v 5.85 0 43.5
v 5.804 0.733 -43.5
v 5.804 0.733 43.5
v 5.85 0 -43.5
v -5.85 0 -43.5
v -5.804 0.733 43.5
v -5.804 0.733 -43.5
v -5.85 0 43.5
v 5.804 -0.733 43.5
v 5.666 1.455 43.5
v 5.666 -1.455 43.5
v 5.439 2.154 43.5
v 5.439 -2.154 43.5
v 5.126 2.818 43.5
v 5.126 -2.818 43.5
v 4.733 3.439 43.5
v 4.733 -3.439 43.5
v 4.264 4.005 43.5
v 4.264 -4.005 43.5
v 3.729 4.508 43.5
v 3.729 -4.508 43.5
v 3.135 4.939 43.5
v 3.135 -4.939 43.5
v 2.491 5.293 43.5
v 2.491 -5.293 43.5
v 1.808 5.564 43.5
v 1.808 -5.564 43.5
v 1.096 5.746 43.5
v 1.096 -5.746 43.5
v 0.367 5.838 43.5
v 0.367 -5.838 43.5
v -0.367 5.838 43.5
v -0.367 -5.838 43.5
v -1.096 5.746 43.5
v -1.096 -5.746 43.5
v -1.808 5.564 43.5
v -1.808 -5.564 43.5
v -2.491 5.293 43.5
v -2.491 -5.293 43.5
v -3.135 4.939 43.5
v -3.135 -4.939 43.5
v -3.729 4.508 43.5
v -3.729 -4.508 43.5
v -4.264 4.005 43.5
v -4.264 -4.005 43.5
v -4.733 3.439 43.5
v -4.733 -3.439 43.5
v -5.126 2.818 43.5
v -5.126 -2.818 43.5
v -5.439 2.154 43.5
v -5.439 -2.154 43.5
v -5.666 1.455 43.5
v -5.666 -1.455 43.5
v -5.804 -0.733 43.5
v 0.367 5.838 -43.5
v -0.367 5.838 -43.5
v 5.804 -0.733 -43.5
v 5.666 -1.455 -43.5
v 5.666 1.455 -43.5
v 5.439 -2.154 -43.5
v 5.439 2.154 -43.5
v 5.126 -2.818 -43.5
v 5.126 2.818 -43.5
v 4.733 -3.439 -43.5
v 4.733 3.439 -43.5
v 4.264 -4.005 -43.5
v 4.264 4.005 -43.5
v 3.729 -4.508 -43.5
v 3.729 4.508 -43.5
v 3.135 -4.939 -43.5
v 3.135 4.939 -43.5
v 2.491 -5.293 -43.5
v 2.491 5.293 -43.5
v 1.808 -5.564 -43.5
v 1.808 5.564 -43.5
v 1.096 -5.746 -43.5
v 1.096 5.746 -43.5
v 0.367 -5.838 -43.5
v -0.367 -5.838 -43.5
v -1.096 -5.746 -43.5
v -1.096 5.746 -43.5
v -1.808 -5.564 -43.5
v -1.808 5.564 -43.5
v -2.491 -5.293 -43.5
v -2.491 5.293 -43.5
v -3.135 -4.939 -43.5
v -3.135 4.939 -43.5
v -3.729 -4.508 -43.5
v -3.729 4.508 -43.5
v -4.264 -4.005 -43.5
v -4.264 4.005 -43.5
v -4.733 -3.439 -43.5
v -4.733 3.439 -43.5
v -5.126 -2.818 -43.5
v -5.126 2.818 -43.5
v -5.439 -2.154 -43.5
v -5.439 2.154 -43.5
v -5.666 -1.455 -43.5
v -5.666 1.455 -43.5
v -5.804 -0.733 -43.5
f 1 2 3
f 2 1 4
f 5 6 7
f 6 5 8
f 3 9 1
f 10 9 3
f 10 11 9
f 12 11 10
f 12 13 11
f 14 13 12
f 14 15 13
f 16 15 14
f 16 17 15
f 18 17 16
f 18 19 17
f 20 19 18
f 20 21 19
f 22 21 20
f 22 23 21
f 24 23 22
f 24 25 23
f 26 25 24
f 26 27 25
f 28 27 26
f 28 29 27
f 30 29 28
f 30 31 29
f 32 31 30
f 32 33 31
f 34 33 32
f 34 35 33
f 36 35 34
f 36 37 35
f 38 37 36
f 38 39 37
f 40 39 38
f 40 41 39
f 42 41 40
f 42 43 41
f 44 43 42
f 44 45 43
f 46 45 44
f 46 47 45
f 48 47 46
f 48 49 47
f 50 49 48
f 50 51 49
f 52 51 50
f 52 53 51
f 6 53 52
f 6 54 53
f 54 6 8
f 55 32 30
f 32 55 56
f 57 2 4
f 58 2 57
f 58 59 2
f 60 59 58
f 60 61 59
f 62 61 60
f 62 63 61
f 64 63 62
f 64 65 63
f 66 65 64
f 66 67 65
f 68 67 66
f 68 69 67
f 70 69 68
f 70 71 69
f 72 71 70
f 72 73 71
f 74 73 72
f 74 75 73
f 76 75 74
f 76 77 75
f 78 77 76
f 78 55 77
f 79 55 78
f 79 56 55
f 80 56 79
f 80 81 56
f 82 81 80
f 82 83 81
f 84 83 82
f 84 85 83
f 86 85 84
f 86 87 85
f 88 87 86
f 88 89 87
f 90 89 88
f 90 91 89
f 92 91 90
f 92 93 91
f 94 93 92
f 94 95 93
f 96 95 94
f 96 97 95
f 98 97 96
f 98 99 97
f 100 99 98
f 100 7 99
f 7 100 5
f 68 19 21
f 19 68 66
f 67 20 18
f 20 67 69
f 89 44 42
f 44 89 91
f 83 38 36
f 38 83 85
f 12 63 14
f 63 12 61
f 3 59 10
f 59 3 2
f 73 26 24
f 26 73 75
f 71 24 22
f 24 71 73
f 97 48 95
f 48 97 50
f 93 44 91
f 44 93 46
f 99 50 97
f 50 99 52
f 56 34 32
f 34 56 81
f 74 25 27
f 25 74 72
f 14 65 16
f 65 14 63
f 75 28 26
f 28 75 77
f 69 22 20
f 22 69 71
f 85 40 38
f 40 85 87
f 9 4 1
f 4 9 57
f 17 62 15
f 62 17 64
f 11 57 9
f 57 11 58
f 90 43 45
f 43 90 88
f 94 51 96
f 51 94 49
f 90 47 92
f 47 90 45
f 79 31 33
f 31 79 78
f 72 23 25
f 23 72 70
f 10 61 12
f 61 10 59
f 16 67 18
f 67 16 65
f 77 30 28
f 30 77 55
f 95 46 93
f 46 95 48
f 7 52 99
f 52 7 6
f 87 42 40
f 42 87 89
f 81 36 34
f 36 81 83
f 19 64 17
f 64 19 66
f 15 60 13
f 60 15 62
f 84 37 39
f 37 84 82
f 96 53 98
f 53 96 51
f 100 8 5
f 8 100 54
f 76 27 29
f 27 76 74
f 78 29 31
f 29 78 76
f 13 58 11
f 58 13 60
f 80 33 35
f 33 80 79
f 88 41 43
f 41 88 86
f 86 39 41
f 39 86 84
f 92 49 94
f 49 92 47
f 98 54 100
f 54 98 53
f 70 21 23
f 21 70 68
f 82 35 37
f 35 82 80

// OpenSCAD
$fn = 50;


difference() {
	union() {
		translate(v = [0, 0, -43.5000000000]) {
			cylinder(h = 87, r = 5.8500000000);
		}
	}
	union() {
		translate(v = [0, 0, -100.0000000000]) {
			cylinder(h = 200, r = 0);
		}
	}
}
